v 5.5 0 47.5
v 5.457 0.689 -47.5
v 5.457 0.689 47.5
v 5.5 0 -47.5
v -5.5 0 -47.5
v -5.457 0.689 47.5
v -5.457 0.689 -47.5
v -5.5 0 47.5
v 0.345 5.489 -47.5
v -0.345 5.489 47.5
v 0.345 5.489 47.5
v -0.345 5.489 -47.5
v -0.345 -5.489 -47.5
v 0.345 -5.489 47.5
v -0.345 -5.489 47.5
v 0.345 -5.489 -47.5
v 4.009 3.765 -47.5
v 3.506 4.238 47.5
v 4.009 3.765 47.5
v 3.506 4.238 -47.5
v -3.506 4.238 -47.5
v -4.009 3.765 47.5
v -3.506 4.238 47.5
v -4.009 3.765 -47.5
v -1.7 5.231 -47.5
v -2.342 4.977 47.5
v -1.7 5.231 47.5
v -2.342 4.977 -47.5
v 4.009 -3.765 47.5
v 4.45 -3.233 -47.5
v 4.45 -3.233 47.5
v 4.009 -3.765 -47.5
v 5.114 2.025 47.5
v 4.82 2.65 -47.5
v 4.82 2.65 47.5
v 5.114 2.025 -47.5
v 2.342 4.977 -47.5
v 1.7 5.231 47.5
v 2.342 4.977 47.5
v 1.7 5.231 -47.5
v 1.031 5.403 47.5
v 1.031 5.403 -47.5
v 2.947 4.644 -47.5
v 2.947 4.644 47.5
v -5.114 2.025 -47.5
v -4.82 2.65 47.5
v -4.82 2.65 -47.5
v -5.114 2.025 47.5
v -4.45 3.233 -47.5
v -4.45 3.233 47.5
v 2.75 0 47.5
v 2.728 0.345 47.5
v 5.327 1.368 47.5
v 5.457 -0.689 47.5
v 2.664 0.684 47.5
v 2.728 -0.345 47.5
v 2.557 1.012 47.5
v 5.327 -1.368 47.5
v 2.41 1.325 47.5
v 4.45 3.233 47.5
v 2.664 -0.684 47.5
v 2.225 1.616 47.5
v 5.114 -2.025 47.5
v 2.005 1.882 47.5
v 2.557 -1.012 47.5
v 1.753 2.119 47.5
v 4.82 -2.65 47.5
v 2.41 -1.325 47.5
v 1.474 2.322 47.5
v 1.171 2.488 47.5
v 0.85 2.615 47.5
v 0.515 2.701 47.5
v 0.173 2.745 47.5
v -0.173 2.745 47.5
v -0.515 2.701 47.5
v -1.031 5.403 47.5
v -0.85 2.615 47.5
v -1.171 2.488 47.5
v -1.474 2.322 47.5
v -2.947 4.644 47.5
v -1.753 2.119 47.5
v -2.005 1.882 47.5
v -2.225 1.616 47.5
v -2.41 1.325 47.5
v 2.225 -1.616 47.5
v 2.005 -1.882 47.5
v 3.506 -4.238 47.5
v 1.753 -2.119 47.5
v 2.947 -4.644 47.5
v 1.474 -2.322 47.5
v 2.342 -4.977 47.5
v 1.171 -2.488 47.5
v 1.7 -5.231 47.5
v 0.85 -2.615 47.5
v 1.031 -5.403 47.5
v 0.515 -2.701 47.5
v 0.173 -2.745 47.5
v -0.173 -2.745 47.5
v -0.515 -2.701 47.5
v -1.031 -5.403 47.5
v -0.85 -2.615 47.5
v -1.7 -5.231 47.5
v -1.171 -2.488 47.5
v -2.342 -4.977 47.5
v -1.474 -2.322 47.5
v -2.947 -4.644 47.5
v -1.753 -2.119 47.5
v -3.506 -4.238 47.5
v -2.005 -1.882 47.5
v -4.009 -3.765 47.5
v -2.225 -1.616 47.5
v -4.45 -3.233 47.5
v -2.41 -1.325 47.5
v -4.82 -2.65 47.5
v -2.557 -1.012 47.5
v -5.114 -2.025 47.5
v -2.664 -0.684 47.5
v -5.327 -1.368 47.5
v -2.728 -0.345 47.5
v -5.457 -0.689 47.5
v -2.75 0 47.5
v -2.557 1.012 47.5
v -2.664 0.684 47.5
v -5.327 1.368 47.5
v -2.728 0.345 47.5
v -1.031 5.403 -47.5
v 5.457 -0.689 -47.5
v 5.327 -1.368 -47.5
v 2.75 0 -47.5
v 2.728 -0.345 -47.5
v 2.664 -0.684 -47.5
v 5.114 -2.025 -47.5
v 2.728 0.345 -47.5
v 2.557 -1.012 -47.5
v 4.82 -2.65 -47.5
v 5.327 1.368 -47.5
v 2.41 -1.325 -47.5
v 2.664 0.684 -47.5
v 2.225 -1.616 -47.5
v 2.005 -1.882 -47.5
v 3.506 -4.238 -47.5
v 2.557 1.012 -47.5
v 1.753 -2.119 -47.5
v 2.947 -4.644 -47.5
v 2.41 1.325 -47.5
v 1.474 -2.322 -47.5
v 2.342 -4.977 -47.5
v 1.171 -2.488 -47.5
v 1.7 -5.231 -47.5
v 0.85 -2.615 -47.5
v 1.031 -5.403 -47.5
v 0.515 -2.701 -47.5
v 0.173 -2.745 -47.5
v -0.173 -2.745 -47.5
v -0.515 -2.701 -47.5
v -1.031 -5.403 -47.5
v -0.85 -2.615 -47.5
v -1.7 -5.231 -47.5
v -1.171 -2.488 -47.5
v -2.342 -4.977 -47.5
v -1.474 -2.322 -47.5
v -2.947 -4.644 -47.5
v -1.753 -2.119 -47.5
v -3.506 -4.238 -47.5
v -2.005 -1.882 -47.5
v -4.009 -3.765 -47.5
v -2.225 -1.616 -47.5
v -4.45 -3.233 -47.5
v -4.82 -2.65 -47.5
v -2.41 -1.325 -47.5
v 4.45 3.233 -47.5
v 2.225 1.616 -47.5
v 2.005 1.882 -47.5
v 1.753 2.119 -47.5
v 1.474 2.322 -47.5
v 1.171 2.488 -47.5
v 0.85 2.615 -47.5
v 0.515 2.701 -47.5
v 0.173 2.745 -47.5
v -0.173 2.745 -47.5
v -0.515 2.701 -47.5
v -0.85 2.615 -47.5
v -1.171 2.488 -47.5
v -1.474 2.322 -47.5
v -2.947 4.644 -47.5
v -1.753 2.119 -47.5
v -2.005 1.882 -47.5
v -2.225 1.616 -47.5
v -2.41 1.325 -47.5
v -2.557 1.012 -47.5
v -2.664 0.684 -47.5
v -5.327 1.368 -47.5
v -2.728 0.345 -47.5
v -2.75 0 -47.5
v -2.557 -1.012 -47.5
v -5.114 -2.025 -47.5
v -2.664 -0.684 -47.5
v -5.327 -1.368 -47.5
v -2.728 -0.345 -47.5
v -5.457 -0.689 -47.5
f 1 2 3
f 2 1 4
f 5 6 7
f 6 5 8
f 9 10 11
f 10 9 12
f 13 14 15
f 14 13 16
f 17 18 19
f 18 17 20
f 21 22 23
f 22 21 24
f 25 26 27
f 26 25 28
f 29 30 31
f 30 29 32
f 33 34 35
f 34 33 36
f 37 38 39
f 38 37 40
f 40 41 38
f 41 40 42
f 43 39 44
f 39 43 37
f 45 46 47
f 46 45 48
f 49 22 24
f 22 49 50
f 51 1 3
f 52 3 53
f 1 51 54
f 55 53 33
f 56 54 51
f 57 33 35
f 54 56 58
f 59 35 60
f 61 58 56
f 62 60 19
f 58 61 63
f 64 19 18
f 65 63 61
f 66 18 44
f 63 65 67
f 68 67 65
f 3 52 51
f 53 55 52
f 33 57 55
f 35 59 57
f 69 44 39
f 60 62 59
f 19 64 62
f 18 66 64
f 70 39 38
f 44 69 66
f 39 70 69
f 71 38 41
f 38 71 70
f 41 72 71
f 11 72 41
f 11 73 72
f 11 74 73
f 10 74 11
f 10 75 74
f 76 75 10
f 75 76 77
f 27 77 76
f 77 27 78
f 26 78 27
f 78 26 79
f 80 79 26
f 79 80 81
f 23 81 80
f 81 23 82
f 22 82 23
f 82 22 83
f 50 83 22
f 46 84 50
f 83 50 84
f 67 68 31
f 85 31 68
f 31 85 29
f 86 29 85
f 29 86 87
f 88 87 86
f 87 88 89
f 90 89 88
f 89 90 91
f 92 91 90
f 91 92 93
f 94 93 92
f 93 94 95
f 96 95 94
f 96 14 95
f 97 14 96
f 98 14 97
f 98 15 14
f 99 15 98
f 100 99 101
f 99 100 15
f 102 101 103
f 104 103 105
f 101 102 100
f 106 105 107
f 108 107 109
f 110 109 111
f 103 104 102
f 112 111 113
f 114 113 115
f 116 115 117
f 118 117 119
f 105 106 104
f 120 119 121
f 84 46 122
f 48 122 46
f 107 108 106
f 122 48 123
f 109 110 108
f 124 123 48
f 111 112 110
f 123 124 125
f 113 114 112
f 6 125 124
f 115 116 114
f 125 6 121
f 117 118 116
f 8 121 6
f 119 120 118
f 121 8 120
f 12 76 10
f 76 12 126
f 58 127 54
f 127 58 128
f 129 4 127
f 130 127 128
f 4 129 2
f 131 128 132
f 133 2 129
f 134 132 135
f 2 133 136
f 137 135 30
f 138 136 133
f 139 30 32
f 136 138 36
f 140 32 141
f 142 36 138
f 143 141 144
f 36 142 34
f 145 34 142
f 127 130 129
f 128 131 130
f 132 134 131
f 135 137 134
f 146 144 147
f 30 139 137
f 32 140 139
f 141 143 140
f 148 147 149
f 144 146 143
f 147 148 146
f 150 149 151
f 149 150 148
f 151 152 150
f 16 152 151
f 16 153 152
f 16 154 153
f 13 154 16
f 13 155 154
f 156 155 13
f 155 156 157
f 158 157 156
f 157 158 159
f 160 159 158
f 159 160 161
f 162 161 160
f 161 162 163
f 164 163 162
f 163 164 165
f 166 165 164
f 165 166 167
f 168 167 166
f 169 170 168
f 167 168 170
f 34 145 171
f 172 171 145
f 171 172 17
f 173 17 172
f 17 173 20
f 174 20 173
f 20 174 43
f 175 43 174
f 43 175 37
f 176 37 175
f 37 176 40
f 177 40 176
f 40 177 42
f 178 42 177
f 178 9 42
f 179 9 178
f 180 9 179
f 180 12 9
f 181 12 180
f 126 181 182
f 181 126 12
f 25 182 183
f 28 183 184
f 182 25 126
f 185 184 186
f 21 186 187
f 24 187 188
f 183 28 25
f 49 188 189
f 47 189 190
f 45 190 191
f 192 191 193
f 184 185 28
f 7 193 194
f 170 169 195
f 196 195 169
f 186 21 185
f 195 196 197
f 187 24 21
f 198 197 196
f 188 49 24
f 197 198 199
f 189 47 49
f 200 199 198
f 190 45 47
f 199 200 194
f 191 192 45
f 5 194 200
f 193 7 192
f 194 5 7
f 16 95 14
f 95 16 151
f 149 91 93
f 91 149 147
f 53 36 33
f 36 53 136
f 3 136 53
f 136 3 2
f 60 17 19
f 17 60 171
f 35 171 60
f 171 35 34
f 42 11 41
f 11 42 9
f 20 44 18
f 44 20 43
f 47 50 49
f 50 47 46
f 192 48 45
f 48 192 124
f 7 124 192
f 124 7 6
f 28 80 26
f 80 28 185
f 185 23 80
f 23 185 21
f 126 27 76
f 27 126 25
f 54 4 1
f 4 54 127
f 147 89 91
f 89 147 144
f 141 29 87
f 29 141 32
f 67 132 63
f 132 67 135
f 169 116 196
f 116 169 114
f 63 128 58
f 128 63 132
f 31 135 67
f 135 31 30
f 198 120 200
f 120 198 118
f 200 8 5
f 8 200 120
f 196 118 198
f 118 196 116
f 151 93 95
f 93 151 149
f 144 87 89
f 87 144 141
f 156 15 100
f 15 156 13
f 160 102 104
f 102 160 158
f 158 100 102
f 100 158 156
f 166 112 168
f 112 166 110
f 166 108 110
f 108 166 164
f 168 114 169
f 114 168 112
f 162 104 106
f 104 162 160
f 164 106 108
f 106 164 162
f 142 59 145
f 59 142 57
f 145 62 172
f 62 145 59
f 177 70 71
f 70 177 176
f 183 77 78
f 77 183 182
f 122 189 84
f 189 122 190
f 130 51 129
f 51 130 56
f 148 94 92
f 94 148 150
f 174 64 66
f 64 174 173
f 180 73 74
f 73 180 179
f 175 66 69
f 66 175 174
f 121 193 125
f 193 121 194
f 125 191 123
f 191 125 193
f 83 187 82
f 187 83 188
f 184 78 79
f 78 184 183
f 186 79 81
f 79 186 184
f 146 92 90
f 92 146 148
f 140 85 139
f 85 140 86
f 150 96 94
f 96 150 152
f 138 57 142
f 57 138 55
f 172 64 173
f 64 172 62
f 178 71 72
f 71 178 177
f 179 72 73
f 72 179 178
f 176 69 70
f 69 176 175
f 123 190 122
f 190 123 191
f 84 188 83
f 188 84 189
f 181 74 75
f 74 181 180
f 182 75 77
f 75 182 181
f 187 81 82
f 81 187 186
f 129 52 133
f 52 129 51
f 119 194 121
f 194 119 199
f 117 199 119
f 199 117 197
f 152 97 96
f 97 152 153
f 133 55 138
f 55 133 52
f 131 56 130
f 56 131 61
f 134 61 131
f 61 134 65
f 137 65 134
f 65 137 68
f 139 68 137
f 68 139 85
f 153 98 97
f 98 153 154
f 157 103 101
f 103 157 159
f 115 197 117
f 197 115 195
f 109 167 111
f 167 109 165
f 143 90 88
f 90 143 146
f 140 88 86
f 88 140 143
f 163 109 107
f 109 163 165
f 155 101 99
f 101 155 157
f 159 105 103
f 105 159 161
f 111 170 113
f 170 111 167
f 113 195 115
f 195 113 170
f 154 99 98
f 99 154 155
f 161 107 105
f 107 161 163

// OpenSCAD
$fn = 50;


difference() {
	union() {
		translate(v = [0, 0, -47.5000000000]) {
			cylinder(h = 95, r = 5.5000000000);
		}
	}
	union() {
		translate(v = [0, 0, -100.0000000000]) {
			cylinder(h = 200, r = 2.7500000000);
		}
	}
}
